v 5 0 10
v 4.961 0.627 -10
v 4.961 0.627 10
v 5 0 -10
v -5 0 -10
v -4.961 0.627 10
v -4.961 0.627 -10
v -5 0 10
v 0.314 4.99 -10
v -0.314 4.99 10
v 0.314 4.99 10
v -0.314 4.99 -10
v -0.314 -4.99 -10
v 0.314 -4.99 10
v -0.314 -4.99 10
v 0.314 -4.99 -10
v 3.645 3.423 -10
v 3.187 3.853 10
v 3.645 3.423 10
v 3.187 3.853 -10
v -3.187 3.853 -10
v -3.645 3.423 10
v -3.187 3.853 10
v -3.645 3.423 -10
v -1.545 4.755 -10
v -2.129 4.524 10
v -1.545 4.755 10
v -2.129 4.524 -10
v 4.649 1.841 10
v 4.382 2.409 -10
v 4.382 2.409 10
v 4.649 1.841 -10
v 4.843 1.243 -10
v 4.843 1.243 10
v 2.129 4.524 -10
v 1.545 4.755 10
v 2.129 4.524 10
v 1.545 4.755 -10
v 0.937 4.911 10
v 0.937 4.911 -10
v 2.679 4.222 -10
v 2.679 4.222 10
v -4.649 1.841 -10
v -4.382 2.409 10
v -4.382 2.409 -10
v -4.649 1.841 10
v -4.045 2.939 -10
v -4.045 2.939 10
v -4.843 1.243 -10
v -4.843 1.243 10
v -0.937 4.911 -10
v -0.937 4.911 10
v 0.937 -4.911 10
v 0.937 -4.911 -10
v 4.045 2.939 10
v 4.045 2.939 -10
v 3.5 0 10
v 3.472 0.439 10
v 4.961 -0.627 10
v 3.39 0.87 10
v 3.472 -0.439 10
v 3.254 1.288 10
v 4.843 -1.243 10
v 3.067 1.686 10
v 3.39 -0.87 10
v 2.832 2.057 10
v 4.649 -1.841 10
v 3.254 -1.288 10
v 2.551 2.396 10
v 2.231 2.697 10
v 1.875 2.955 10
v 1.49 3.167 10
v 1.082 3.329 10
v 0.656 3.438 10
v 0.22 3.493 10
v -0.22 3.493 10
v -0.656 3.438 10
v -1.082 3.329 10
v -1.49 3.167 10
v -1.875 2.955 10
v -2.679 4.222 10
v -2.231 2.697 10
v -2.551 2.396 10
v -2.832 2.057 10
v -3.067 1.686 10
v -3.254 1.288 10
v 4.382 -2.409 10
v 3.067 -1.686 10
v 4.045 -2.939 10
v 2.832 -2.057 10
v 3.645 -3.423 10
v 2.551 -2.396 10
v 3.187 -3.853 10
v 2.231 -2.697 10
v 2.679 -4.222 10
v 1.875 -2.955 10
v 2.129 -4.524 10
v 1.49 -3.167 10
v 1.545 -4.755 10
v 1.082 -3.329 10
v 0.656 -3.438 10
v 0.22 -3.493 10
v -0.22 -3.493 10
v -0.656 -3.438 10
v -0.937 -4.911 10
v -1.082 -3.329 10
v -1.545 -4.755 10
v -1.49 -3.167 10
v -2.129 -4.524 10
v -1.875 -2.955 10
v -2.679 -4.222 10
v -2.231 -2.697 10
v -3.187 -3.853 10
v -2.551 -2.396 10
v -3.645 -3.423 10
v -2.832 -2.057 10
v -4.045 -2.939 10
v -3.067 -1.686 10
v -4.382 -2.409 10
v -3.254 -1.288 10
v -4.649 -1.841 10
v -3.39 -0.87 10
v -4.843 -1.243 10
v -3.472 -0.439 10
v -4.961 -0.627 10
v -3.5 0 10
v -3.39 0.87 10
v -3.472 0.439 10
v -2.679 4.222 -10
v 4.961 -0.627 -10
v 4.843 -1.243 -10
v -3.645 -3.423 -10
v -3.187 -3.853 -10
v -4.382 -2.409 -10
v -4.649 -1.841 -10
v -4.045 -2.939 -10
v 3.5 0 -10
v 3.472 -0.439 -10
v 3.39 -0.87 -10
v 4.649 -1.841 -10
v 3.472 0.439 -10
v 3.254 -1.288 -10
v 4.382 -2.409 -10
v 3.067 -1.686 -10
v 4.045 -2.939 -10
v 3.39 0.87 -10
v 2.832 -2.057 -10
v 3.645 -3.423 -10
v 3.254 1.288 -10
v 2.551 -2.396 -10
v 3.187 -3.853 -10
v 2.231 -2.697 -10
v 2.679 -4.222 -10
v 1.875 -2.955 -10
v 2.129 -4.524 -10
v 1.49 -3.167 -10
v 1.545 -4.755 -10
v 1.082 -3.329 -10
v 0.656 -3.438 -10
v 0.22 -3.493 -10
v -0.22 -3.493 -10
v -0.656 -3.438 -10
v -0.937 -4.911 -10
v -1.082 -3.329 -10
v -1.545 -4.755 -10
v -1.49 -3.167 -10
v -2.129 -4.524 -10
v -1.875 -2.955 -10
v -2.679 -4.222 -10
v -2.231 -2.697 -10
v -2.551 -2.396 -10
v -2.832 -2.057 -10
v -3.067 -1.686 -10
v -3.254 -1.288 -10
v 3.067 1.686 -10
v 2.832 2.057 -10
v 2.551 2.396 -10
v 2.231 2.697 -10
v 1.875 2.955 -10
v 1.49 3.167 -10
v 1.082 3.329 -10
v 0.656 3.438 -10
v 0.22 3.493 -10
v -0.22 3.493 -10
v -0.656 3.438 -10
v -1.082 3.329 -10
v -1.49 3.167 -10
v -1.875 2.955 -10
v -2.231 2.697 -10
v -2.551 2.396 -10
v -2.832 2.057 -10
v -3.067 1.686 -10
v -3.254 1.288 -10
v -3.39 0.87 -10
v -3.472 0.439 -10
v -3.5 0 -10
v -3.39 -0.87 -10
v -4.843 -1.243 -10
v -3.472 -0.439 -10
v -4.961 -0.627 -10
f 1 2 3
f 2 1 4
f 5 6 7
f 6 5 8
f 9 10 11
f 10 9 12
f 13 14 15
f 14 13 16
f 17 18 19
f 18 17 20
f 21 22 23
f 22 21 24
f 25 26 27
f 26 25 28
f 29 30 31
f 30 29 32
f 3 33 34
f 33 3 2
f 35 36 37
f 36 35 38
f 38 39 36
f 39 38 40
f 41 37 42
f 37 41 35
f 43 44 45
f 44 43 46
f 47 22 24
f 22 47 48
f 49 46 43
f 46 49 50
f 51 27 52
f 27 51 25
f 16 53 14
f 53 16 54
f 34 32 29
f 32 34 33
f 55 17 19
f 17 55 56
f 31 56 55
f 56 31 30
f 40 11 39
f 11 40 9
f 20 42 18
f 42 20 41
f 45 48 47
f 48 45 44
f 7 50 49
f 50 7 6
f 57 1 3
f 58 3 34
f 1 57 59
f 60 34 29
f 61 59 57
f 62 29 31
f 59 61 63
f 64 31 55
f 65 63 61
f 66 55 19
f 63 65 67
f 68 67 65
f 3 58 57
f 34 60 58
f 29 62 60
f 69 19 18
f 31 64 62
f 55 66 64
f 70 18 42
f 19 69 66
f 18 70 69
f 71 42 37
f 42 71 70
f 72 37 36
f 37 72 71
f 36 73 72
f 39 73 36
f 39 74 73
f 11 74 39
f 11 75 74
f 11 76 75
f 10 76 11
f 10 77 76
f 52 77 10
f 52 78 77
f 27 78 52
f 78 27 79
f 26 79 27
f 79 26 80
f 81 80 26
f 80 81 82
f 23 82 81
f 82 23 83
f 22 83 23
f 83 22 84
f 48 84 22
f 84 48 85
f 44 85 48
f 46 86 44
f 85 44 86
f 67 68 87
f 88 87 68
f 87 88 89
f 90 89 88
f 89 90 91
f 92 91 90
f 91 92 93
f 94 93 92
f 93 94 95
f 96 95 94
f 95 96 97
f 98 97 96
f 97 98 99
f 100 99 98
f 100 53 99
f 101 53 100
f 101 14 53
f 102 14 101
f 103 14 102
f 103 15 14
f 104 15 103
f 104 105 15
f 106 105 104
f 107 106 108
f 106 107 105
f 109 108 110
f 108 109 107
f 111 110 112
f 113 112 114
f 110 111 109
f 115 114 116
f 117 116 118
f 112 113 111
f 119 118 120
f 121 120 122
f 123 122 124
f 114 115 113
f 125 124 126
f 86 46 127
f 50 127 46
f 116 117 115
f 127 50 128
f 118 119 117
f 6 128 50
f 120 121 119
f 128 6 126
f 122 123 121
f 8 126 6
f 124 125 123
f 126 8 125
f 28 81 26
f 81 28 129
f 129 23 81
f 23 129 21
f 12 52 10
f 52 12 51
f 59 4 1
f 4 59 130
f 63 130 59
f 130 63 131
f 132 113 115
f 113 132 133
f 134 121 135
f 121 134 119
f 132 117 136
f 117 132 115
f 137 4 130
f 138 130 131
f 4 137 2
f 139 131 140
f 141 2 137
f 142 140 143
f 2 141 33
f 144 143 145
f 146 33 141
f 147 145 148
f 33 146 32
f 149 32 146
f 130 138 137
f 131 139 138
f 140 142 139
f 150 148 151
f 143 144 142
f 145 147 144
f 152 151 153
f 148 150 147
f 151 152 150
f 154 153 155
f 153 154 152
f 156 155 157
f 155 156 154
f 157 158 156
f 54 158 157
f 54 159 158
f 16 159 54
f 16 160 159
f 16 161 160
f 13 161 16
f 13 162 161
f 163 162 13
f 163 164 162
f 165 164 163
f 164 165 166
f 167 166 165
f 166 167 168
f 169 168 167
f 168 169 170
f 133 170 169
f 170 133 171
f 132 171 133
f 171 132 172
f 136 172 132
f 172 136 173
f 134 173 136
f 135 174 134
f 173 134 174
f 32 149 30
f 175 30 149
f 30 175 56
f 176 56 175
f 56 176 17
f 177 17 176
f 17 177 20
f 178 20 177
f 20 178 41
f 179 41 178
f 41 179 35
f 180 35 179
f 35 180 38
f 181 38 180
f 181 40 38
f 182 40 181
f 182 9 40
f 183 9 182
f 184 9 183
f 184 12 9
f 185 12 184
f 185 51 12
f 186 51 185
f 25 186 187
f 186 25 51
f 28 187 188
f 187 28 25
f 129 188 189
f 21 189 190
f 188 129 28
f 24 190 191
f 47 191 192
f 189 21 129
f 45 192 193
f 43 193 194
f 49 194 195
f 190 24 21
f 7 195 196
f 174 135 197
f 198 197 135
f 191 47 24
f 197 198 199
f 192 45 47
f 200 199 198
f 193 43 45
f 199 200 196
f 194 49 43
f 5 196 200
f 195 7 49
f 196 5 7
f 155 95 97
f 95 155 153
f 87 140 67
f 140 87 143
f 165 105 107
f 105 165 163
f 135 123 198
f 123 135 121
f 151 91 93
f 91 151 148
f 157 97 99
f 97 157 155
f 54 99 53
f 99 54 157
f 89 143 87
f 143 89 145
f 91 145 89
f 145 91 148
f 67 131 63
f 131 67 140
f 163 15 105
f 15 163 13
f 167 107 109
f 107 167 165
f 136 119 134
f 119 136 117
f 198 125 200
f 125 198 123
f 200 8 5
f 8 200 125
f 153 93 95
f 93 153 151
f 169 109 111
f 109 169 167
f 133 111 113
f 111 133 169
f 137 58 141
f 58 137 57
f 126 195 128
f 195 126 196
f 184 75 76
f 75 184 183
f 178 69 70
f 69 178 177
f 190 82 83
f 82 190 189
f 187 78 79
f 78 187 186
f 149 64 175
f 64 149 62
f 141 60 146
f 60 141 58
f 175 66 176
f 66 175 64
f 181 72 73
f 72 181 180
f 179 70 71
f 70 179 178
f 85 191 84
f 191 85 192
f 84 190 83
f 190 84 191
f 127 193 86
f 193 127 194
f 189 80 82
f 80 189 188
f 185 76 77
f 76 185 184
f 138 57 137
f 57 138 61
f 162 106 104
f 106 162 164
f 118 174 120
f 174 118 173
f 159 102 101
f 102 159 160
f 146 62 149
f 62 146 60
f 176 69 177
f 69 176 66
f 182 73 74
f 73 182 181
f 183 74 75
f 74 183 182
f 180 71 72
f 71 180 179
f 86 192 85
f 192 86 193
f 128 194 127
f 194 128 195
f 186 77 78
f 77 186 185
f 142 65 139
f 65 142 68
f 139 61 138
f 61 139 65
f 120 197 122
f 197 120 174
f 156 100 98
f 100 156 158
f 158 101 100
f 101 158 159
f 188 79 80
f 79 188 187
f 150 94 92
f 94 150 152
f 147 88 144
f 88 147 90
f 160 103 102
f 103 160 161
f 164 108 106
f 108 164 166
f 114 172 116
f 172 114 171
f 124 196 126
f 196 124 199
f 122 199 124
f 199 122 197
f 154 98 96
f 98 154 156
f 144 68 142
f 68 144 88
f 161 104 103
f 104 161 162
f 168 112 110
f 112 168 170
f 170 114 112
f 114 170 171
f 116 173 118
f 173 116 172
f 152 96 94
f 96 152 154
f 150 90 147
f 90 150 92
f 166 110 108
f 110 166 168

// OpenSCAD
$fn = 50;


difference() {
	union() {
		translate(v = [0, 0, -10.0000000000]) {
			cylinder(h = 20, r = 5.0000000000);
		}
	}
	union() {
		translate(v = [0, 0, -100.0000000000]) {
			cylinder(h = 200, r = 3.5000000000);
		}
	}
}
